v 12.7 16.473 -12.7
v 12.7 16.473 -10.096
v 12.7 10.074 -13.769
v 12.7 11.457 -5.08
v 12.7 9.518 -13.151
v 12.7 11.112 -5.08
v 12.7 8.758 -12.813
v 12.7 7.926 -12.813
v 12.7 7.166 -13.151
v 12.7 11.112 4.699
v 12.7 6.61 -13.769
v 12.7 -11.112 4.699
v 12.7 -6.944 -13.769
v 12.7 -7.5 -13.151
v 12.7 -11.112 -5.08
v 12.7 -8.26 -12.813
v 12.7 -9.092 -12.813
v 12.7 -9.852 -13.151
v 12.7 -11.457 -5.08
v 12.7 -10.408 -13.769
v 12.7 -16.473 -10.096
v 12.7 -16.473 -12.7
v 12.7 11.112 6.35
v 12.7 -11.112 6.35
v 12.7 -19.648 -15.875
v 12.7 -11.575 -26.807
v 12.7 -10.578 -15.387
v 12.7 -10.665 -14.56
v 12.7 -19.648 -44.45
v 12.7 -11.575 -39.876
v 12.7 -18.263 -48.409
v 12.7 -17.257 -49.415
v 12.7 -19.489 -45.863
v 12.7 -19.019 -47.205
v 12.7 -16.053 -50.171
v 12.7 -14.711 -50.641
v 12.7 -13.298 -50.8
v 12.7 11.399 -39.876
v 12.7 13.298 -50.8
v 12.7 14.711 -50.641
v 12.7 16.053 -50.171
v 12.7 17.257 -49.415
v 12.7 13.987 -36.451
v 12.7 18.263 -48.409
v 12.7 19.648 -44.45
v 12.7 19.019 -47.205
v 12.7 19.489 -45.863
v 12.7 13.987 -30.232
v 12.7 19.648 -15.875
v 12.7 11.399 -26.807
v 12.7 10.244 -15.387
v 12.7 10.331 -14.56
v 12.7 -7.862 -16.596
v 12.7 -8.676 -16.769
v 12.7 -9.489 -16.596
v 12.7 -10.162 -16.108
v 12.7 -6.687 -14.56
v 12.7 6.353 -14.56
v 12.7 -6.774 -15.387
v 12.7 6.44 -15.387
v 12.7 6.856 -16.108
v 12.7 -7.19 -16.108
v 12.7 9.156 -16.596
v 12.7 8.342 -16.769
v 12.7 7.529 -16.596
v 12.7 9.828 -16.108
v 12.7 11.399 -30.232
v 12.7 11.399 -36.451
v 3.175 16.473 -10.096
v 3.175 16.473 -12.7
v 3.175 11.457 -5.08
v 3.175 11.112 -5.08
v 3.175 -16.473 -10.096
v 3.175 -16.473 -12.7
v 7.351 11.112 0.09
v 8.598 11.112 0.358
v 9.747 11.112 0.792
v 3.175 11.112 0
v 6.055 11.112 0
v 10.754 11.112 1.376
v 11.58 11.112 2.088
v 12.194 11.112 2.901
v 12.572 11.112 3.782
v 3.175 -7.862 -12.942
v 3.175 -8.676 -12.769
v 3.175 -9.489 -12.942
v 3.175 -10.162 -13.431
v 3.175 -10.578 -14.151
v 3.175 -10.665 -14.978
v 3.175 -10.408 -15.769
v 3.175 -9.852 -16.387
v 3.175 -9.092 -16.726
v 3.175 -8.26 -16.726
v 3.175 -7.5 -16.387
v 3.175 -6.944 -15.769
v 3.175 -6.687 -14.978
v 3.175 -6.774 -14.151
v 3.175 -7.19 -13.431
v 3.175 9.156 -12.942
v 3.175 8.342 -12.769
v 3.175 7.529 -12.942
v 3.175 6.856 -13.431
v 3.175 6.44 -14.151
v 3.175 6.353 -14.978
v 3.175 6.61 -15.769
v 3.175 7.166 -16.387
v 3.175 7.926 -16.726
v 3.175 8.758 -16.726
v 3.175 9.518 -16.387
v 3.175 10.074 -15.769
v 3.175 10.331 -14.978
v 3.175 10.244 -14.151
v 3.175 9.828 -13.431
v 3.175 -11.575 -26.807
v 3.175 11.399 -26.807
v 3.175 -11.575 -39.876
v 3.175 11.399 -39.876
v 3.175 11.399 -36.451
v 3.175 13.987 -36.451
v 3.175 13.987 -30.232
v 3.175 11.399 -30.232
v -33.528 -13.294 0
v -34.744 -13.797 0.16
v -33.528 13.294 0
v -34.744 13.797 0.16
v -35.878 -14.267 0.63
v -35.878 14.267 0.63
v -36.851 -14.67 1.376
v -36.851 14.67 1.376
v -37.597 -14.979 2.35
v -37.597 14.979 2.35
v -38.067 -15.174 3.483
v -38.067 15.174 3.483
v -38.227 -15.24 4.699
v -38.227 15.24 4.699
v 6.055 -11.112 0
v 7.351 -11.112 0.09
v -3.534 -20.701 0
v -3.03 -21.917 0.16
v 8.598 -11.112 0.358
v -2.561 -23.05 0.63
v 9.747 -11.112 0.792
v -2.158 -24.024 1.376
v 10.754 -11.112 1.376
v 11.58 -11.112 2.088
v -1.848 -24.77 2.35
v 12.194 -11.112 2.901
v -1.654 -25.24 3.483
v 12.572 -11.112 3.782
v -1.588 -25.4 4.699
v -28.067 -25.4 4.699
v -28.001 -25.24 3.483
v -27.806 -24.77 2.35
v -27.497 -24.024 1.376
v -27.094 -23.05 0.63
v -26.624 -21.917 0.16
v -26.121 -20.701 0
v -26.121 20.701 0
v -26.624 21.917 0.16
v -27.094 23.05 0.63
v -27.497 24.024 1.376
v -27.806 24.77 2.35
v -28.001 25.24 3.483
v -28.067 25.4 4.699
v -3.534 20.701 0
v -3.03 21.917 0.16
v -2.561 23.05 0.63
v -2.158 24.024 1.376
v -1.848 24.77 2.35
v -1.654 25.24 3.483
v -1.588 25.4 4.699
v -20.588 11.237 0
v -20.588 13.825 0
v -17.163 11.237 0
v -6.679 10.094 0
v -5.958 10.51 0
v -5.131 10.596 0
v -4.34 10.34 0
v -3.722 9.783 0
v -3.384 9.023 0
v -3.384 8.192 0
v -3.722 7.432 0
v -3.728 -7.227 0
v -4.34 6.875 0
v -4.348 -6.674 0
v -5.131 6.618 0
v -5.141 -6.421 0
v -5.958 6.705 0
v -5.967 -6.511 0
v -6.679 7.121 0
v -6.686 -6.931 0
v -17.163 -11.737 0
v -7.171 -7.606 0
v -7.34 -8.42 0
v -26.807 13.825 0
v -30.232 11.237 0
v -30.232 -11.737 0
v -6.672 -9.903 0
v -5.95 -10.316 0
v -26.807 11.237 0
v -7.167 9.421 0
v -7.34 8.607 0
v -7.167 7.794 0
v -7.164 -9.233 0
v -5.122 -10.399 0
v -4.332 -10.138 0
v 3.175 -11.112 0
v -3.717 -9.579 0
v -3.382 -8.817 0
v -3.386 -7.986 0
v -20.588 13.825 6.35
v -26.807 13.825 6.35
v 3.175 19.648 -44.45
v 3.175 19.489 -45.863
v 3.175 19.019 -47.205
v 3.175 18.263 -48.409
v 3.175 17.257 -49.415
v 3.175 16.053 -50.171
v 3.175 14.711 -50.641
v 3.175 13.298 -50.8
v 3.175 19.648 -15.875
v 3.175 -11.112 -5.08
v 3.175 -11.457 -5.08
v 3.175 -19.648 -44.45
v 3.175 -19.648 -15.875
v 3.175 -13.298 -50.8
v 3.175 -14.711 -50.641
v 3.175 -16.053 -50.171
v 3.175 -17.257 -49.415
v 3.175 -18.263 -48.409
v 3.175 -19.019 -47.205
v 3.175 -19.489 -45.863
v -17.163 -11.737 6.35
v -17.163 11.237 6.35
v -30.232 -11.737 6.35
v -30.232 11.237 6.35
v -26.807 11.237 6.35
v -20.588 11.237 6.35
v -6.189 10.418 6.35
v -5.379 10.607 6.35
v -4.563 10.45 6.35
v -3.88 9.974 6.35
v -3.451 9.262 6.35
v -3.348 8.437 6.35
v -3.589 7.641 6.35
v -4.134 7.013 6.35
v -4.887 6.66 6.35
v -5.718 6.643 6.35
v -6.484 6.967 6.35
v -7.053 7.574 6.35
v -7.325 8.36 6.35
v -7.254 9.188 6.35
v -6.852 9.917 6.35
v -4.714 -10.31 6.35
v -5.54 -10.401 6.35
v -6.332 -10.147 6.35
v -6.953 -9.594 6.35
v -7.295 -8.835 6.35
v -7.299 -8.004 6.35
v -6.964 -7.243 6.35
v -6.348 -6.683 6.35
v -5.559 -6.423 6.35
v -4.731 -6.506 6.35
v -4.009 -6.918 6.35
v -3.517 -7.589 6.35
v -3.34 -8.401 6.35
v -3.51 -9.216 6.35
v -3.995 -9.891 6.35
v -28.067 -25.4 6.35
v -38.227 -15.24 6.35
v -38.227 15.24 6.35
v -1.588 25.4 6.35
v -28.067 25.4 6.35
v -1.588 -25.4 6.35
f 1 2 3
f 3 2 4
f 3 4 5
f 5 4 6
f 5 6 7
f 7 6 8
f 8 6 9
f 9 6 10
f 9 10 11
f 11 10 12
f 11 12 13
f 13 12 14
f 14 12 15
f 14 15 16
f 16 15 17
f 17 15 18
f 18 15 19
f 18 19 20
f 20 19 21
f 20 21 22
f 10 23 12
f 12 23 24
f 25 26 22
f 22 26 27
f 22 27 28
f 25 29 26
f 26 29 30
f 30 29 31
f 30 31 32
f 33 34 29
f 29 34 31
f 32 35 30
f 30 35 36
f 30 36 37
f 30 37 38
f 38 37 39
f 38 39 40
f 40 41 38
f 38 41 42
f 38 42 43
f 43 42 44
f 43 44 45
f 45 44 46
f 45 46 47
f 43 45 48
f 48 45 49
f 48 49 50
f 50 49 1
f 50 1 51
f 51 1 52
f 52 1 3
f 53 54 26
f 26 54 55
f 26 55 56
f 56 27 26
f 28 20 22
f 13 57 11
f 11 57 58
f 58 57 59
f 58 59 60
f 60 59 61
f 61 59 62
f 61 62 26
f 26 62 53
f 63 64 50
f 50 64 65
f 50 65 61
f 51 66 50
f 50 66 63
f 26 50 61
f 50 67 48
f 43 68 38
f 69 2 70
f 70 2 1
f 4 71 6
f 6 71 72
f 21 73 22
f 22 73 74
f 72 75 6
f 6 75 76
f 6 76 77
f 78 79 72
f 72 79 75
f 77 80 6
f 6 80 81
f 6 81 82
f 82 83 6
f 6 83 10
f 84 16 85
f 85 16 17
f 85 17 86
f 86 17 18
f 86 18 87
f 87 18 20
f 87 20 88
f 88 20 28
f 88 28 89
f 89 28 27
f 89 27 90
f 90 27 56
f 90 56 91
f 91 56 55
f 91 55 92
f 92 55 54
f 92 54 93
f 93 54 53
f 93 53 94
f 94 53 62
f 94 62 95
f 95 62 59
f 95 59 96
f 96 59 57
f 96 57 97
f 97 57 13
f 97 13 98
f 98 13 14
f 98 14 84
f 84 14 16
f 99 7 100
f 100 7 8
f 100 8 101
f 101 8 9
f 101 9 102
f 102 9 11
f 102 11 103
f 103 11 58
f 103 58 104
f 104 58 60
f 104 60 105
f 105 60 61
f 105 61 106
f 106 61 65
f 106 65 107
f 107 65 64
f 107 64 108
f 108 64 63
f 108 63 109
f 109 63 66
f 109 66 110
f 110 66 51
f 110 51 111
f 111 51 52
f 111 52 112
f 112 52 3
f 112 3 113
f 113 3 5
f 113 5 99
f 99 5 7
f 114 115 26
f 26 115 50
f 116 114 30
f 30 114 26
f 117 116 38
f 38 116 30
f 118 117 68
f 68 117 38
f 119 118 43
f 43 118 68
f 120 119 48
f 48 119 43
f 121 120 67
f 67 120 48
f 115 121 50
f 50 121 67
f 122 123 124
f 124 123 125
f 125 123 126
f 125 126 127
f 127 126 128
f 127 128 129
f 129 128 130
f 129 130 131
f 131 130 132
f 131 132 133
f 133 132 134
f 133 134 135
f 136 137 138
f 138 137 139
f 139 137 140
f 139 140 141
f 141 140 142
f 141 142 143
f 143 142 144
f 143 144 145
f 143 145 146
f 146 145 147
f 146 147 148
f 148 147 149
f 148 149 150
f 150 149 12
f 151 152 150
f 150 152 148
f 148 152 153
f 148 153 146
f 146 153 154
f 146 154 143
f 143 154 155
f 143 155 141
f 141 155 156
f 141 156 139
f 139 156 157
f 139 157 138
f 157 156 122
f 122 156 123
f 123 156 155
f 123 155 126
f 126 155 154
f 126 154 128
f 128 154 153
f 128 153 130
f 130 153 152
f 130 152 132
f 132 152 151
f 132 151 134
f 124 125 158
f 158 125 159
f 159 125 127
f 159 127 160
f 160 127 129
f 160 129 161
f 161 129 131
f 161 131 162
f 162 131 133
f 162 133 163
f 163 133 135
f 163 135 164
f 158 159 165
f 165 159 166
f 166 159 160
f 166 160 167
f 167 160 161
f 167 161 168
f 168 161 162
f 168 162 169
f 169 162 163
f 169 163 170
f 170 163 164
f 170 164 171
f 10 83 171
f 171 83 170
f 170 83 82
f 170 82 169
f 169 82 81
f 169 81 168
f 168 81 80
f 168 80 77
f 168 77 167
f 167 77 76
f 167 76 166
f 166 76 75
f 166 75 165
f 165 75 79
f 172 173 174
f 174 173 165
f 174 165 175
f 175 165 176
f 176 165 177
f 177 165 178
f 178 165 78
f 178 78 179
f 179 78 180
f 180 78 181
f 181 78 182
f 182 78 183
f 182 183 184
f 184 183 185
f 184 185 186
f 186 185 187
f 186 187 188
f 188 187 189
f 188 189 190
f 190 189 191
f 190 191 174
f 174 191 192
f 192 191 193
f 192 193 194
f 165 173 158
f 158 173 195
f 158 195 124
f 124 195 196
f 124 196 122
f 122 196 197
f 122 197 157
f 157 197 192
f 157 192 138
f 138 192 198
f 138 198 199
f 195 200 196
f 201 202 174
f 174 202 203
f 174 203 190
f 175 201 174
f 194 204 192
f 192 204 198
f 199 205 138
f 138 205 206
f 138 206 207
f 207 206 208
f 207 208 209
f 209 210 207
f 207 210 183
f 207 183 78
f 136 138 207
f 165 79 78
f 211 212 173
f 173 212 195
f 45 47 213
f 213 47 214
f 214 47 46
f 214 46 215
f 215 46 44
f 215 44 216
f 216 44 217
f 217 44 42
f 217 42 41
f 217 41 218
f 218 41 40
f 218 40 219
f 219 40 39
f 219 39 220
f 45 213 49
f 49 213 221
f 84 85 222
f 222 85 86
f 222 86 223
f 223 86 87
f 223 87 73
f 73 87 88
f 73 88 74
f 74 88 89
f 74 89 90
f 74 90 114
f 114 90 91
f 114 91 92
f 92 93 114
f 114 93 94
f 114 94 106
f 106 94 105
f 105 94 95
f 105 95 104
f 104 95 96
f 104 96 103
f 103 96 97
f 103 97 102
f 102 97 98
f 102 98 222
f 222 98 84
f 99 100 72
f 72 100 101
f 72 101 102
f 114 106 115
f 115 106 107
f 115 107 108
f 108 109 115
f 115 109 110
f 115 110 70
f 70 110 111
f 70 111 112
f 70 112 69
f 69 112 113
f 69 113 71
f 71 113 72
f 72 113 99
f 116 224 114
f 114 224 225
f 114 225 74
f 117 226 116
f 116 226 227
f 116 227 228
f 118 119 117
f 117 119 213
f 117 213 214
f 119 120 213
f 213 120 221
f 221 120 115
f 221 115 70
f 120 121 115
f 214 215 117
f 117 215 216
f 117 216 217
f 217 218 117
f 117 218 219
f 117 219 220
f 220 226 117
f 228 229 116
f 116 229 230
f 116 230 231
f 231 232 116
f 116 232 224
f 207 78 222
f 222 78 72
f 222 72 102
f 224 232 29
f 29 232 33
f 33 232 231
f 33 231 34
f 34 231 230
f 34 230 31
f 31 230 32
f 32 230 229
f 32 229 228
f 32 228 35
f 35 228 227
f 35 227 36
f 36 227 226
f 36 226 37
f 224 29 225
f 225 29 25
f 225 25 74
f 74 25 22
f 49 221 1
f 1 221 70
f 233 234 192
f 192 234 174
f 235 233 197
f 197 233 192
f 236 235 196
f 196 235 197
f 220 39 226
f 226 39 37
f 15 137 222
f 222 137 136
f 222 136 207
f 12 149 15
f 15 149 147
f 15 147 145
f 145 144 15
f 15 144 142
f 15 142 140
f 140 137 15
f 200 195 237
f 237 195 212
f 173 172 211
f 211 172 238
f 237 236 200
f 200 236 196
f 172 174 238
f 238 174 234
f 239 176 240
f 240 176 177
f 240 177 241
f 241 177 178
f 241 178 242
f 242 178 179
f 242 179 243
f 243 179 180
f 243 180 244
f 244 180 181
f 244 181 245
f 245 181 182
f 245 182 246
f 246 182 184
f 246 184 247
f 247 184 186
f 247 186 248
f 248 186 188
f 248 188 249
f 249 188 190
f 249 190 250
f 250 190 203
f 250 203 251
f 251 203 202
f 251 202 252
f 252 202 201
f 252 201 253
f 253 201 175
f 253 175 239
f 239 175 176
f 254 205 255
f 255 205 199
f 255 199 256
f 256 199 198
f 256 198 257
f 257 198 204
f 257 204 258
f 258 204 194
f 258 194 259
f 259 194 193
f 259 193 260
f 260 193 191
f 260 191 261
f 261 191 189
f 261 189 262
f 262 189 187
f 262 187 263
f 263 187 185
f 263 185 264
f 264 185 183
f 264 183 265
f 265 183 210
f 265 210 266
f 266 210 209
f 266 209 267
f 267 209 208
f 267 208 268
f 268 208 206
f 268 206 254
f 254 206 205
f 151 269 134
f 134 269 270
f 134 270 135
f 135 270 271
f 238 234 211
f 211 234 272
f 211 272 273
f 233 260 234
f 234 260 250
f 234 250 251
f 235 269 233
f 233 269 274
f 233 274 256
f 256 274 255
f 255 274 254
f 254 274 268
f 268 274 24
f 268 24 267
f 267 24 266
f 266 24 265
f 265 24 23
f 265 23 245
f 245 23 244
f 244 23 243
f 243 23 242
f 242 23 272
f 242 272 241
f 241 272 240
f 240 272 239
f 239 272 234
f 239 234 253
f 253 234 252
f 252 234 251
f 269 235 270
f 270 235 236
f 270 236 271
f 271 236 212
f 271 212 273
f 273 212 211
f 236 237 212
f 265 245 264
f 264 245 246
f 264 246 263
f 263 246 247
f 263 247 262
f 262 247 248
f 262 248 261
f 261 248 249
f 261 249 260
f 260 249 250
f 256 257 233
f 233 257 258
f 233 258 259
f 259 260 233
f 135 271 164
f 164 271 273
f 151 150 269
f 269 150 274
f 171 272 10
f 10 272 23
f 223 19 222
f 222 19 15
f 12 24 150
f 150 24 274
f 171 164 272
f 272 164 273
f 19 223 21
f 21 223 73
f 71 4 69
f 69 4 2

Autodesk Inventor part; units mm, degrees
ref_plane "YZ Plane" through (0, 0, 0) normal (1, 0, 0) x (0, 1, 0)
ref_plane "XZ Plane" through (0, 0, 0) normal (0, 1, 0) x (-1, 0, 0)
ref_plane "XY Plane" through (0, 0, 0) normal (0, 0, 1) x (1, 0, 0)
sketch "Sketch1" plane through (0, 0, 0) normal (0, 0, 1) x (1, 0, 0)
  line L0 (-38.1, -25.4) -> (38.1, -25.4)
  line L1 (38.1, -25.4) -> (38.1, 25.4)
  line L2 (38.1, 25.4) -> (-38.1, 25.4)
  line L3 (-38.1, 25.4) -> (-38.1, -25.4)
  line L4 (-38.1, -25.4) -> (38.1, 25.4) construction
  line L5 (38.1, -25.4) -> (-38.1, 25.4) construction
  point P0 (0, 0)
  dimension "d0" = 76.2
  dimension "d1" = 50.8
extrude "Extrusion1" add sketch "Sketch1" along normal blind 6.35
sketch "Sketch3" plane through (38.1, -25.4, 0) normal (1, 0, 0) x (0, 0, -1)
  line L0 (0, 0) -> (0, 50.8) projected
  line L1 (0, 50.8) -> (-6.35, 50.8) projected
  line L2 (-6.35, 0) -> (-6.35, 50.8) projected
  line L3 (0, 0) -> (-6.35, 0) projected
  point P0 (0, 25.4)
extrude "Extrusion3" cut sketch "Sketch3" against normal blind 25.4
sketch "Sketch4" plane through (-38.1, -25.4, 0) normal (-1, 0, 0) x (0, 0, 1)
  line L0 (4.925, 17.15) -> (1.425, 17.15)
  line L1 (1.425, 17.15) -> (1.425, 33.65)
  line L2 (1.425, 33.65) -> (4.925, 33.65)
  line L3 (4.925, 33.65) -> (4.925, 17.15)
  line L4 (4.925, 17.15) -> (1.425, 33.65) construction
  line L5 (1.425, 17.15) -> (4.925, 33.65) construction
  point P0 (0, 25.4)
  point P1 (3.175, 25.4)
  dimension "d9" = 3.5
  dimension "d10" = 16.5
extrude "Extrusion4" add sketch "Sketch4" along normal blind 3.302
sketch "Sketch5" plane through (-38.1, -8.25, 4.925) normal (0, 0, 1) x (1, 0, 0)
  line L0 (-3.302, 0) -> (-3.302, 16.5) projected
  line L1 (0, 16.5) -> (0, 0) projected
  line L2 (0, 16.5) -> (-3.302, 16.5) projected
  line L3 (-3.302, 0) -> (-3.302, 16.5) projected
  line L4 (0, 0) -> (-3.302, 0) projected
  line L5 (-3.302, 16.5) -> (-3.175, 16.5)
  line L6 (0, 16.5) -> (-3.302, 16.5) projected
  line L7 (-3.175, 16.5) -> (-3.175, 16.5685)
  line L8 (-3.302, 16.5) -> (-3.302, 0) projected
  line L9 (-3.175, 16.5685) -> (-3.302, 16.5)
  point P0 (38.1, 8.25)
  point P1 (-3.175, 16.5)
  dimension "d13" = 0.127
sketch3d "3D Sketch1"
  line L0 (-41.402, 8.25, 4.925) -> (-41.402, 8.25, 1.425)
  line L1 (-41.402, 8.25, 1.425) -> (-41.402, -8.25, 1.425)
  line L2 (-41.402, -8.25, 1.425) -> (-41.402, -8.25, 4.925)
  line L3 (-41.402, -8.25, 4.925) -> (-41.402, 8.25, 4.925)
sweep "Sweep1" add profiles "Sketch5" path "3D Sketch1" contours L9 L7 L2
chamfer "Chamfer1" distance 14.2875 angle 45 4 edges at (-38.1, -25.4, 3.175) (-38.1, 25.4, 3.175) (12.7, -25.4, 3.175) (12.7, 25.4, 3.175)
sketch "Sketch6" plane through (-41.402, -25.4, 0) normal (-1, 0, 0) x (0, 0, 1)
  line L0 (-26.5368, -66.9991) -> (26.5368, -66.9991)
  line L1 (26.5368, -66.9991) -> (26.5368, 66.9991)
  line L2 (26.5368, 66.9991) -> (-26.5368, 66.9991)
  line L3 (-26.5368, 66.9991) -> (-26.5368, -66.9991)
  line L4 (0, 0) -> (6.35, 0) projected
  line L5 (-26.5368, -66.9991) -> (26.5368, 66.9991) construction
  line L6 (26.5368, -66.9991) -> (-26.5368, 66.9991) construction
  point P0 (0, 25.4)
extrude "Extrusion5" cut sketch "Sketch6" against normal blind 28.575
sketch "Sketch7" plane through (0, 0, 0) normal (0, 0, -1) x (-1, 0, 0)
  line L0 (-8.025, 3.175) -> (-8.025, -3.175)
  line L1 (-8.025, -3.175) -> (8.025, -3.175)
  line L2 (8.025, -3.175) -> (8.025, 3.175)
  line L3 (8.025, 3.175) -> (-8.025, 3.175)
  line L4 (-8.025, 4.675) -> (8.025, -1.675) construction
  line L5 (-8.025, -1.675) -> (8.025, 4.675) construction
  line L6 (0, 3.175) -> (0, -3.175)
  point P0 (0, 0)
  point P1 (0, 0)
  dimension "d21" = 6.35
  dimension "d22" = 16.05
extrude "Extrusion6" add sketch "Sketch7" along normal blind 19.2024
sketch "Sketch9" plane through (0, 0, 6.35) normal (0, 0, 1) x (1, 0, 0)
  line L0 (6.0307, -10.9832) -> (5.9693, 11.0167) projected
  line L1 (-6.0307, 10.9832) -> (6.0307, 10.9832)
  line L2 (6.0307, 10.9832) -> (6.0307, -10.9832)
  line L3 (6.0307, -10.9832) -> (-6.0307, -10.9832)
  line L4 (-6.0307, -10.9832) -> (-6.0307, 10.9832)
  point P0 (0, 0)
sketch "Sketch10" plane through (-12.827, -25.4, 0) normal (-1, 0, 0) x (0, 0, 1)
  line L0 (0, 0) -> (0, 50.8) projected
  line L1 (6.35, 0) -> (0, 0) projected
  line L2 (6.35, 50.8) -> (6.35, 0) projected
  line L3 (0, 50.8) -> (6.35, 50.8) projected
  point P0 (0, 25.4)
extrude "Extrusion7" add sketch "Sketch10" along normal blind 25.4
chamfer "Chamfer2" distance 10.16 angle 45 1 edges at (-38.227, 25.4, 3.175)
chamfer "Chamfer3" distance 10.16 angle 45 1 edges at (-38.227, -25.4, 3.175)
sketch "Sketch11" plane through (0, 0, 6.35) normal (0, 0, 1) x (1, 0, 0)
  line L0 (-29.728, 10.9832) -> (-17.6666, 10.9832)
  line L1 (-17.6666, -10.9832) -> (-29.728, -10.9832)
  line L2 (-29.728, -10.9832) -> (-29.728, 10.9832)
  line L3 (-17.6666, -10.9832) -> (-17.6666, 10.9832)
  line L4 (-30.998, 12.2532) -> (-16.3966, 12.2532)
  line L5 (-16.3966, 12.2532) -> (-16.3966, -12.2532)
  line L6 (-16.3966, -12.2532) -> (-30.998, -12.2532)
  line L7 (-30.998, -12.2532) -> (-30.998, 12.2532)
  line L8 (-17.6666, 10.9832) -> (-18.9366, 10.9832)
  line L9 (-29.728, 10.9832) -> (-28.458, 10.9832)
  line L10 (-18.9366, 10.9832) -> (-28.458, 10.9832)
  line L11 (-28.458, 10.9832) -> (-28.458, 15.1856)
  line L12 (-28.458, 15.1856) -> (-18.9366, 15.1856)
  line L13 (-18.9366, 15.1856) -> (-18.9366, 10.9832)
  point P0 (0, 0)
  dimension "d54" = 1.27
  dimension "d55" = 1.27
  dimension "d56" = 1.27
extrude "Extrusion8" cut sketch "Sketch11" against normal up to surface (6.35 mm away) contours L0 L3 L1 L2
sketch "Sketch12" plane through (0, 0, 6.35) normal (0, 0, 1) x (1, 0, 0)
  arc A0 (-5.2182, -6.4143) -> (-5.5402, -10.4006) centre (-5.418, -8.4043) ccw projected
  arc A1 (-5.5402, -10.4006) -> (-5.2182, -6.4143) centre (-5.3404, -8.4106) ccw projected
  arc A2 (-5.3792, 10.6071) -> (-5.3792, 6.6078) centre (-5.418, 8.6074) ccw projected
  arc A3 (-5.3792, 6.6078) -> (-5.3792, 10.6071) centre (-5.3404, 8.6074) ccw projected
  line L0 (-14.078, 16.1258) -> (3.242, 16.1258) projected
  line L1 (-14.078, 16.1258) -> (-14.078, -15.929) projected
  line L2 (-14.078, -15.929) -> (3.242, -15.929) projected
  line L3 (3.242, 16.1258) -> (3.242, -15.929) projected
  circle A4 centre (-5.3404, -8.4106) radius 2
  circle A5 centre (-5.3404, 8.6074) radius 2
  point P0 (0, 0)
  point P1 (-5.3792, 6.6078)
  point P2 (-5.2182, -6.4143)
  point P3 (-5.5402, -10.4006)
  dimension "d38" = 4
  dimension "d39" = 4
extrude "Extrusion9" cut sketch "Sketch12" against normal up to surface (6.35 mm away) contours A1 A4 | A3 A5
sketch "Sketch13" plane through (-8.025, 3.175, 0) normal (0, 1, 0) x (1, 0, 0)
  line L0 (16.05, 19.2024) -> (0, 19.2024) projected
  circle A0 centre (8.025, 4.3815) radius 2.25
  circle A1 centre (8.025, 13.1445) radius 2.25
  line L1 (16.05, 0) -> (0, 0) projected
  line L2 (16.05, 0) -> (16.05, 19.2024) projected
  line L3 (0, 19.2024) -> (16.05, 19.2024) projected
  line L4 (0, 0) -> (0, 19.2024) projected
  line L5 (8.025, 0) -> (12.4065, 0)
  line L6 (6.4375, 0) -> (20.725, 0) projected
  line L7 (8.025, 0) -> (8.025, 4.3815)
  line L8 (8.025, 0) -> (12.4065, 0) construction
  line L9 (8.025, 0) -> (21.1695, 0)
  line L10 (8.025, 0) -> (8.025, 13.1445)
  line L11 (16.05, 0) -> (0, 0) projected
  line L12 (8.025, 0) -> (21.1695, 0) construction
  dimension "d44" = 4.5
  dimension "d45" = 4.5
  dimension "d48" = 4.3815
  dimension "d49" = 4.3815
  dimension "d50" = 90
  dimension "d51" = 13.1445
  dimension "d52" = 13.1445
  dimension "d53" = 90
extrude "Extrusion10" cut sketch "Sketch13" against normal up to surface (6.35 mm away) contours A1 | A0 L10 L7 | L7 L10 A0
sketch "Sketch14" plane through (0, 0, -19.2024) normal (0, 0, -1) x (-1, 0, 0)
  line L0 (8.025, 3.175) -> (8.025, -3.175) projected
  line L1 (-8.025, -3.175) -> (-8.025, 3.175) projected
  line L2 (8.025, 3.175) -> (-8.025, 3.175)
  line L3 (-8.025, 3.175) -> (-8.025, -3.175)
  line L4 (-8.025, -3.175) -> (8.025, -3.175)
  line L5 (8.025, -3.175) -> (8.025, 3.175)
  point P0 (0, 0)
sketch "Sketch16" plane through (0, 0, 6.35) normal (0, 0, 1) x (1, 0, 0)
  line L0 (-29.728, -10.9832) -> (-29.728, 10.9832) projected
  line L1 (-17.6666, -10.9832) -> (-29.728, -10.9832) projected
  line L2 (-17.6666, 10.9832) -> (-17.6666, -10.9832) projected
  line L3 (-29.728, 10.9832) -> (-17.6666, 10.9832) projected
  line L4 (-29.982, -11.2372) -> (-29.982, 11.2372)
  line L5 (-29.982, 11.2372) -> (-17.4126, 11.2372)
  line L6 (-17.4126, 11.2372) -> (-17.4126, -11.2372)
  line L7 (-17.4126, -11.2372) -> (-29.982, -11.2372)
  point P0 (0, 0)
  dimension "d62" = 0.254
extrude "Extrusion12" cut sketch "Sketch16" against normal up to surface (6.35 mm away)
sketch "Sketch17" plane through (0, 0, 6.35) normal (0, 0, 1) x (1, 0, 0)
  line L0 (-17.4126, 11.2372) -> (-29.982, 11.2372) projected
  line L1 (-29.982, 11.2372) -> (-26.807, 11.2372)
  line L2 (-17.4126, 11.2372) -> (-20.5876, 11.2372)
  line L3 (-26.807, 11.2372) -> (-20.5876, 11.2372)
  line L4 (-20.5876, 11.2372) -> (-20.5876, 12.8247)
  line L5 (-20.5876, 12.8247) -> (-26.807, 12.8247)
  line L6 (-26.807, 12.8247) -> (-26.807, 11.2372)
  point P0 (0, 0)
  dimension "d65" = 3.175
  dimension "d66" = 3.175
  dimension "d67" = 1.5875
extrude "Extrusion13" cut sketch "Sketch17" against normal up to surface (6.35 mm away)
sketch "Sketch18" plane through (0, 0, -19.2024) normal (0, 0, -1) x (-1, 0, 0)
  line L0 (8.025, -3.175) -> (8.025, 3.175) projected
  line L1 (8.025, 3.175) -> (-8.025, 3.175) projected
  line L2 (-8.025, 3.175) -> (-8.025, -3.175) projected
  line L3 (-8.025, -3.175) -> (8.025, -3.175) projected
  line L4 (8.025, -3.175) -> (8.025, 3.175) projected
  line L5 (8.025, 3.175) -> (-8.025, 3.175) projected
  line L6 (-8.025, 3.175) -> (-8.025, -3.175) projected
  line L7 (-8.025, -3.175) -> (8.025, -3.175) projected
  point P0 (0, 0)
extrude "Extrusion14" cut sketch "Sketch18" against normal up to surface (19.2024 mm away)
sketch "Sketch19" plane through (0, 0, 0) normal (0, 0, -1) x (-1, 0, 0)
  line L0 (38.227, -15.24) -> (28.067, -25.4) projected
  line L1 (38.227, 15.24) -> (38.227, -15.24) projected
  line L2 (28.067, 25.4) -> (38.227, 15.24) projected
  line L3 (1.5875, 25.4) -> (28.067, 25.4) projected
  line L4 (-12.7, 11.1125) -> (1.5875, 25.4) projected
  line L5 (-12.7, 11.1125) -> (-12.7, -11.1125) projected
  line L6 (1.5875, -25.4) -> (-12.7, -11.1125) projected
  line L7 (28.067, -25.4) -> (1.5875, -25.4) projected
  circle A0 centre (5.3404, -8.4106) radius 2 projected
  circle A1 centre (5.3404, 8.6074) radius 2 projected
  line L8 (20.5876, 11.2372) -> (20.5876, 12.8247) projected
  line L9 (20.5876, 12.8247) -> (26.807, 12.8247) projected
  line L10 (26.807, 12.8247) -> (26.807, 11.2372) projected
  line L11 (26.807, 11.2372) -> (29.982, 11.2372) projected
  line L12 (29.982, 11.2372) -> (29.982, -11.2372) projected
  line L13 (29.982, -11.2372) -> (17.4126, -11.2372) projected
  line L14 (17.4126, -11.2372) -> (17.4126, 11.2372) projected
  line L15 (17.4126, 11.2372) -> (20.5876, 11.2372) projected
  line L16 (-12.7, -11.1125) -> (-3.175, -11.1125)
  line L17 (-3.175, -11.1125) -> (-3.175, 11.1125)
  line L18 (-3.175, 11.1125) -> (-12.7, 11.1125)
  line L19 (-12.7, 11.1125) -> (-12.7, -11.1125)
  point P0 (0, 0)
  dimension "d72" = 9.525
extrude "Extrusion15" add sketch "Sketch19" along normal blind 12.7 contours L5 L18 L17 L16
sketch "Sketch20" plane through (0, 0, -12.7) normal (0, 0, -1) x (-1, 0, 0)
  line L0 (-12.7, -11.1125) -> (-3.175, -11.1125) projected
  line L1 (-3.175, -11.1125) -> (-3.175, 11.1125) projected
  line L2 (-3.175, 11.1125) -> (-12.7, 11.1125) projected
  line L3 (-12.7, 11.1125) -> (-12.7, -11.1125) projected
  line L4 (-3.175, -19.648) -> (-12.7, -19.648)
  line L5 (-12.7, -19.648) -> (-12.7, 19.648)
  line L6 (-12.7, 19.648) -> (-3.175, 19.648)
  line L7 (-3.175, 19.648) -> (-3.175, -19.648)
  line L8 (-3.175, -19.648) -> (-12.7, 19.648) construction
  line L9 (-12.7, -19.648) -> (-3.175, 19.648) construction
  point P0 (0, 0)
  point P1 (-7.9375, 0)
extrude "Extrusion16" add sketch "Sketch20" along normal blind 38.1
sketch "Sketch21" plane through (0, 0, 0) normal (0, 0, -1) x (-1, 0, 0)
  line L0 (29.982, -11.2372) -> (17.4126, -11.2372) projected
  line L1 (29.982, -11.2372) -> (17.4126, -11.2372)
  line L2 (17.4126, -11.2372) -> (17.4126, -11.7372)
  line L3 (17.4126, -11.7372) -> (29.982, -11.7372)
  line L4 (29.982, -11.7372) -> (29.982, -11.2372)
  line L5 (29.982, -11.7372) -> (30.232, -11.7372)
  line L6 (30.232, -11.7372) -> (30.232, 11.2372)
  line L7 (30.232, 11.2372) -> (29.982, 11.2372)
  line L8 (29.982, 11.2372) -> (29.982, -11.7372)
  line L9 (17.4126, -11.7372) -> (17.1626, -11.7372)
  line L10 (17.1626, -11.7372) -> (17.1626, 11.2372)
  line L11 (17.1626, 11.2372) -> (17.4126, 11.2372)
  line L12 (17.4126, 11.2372) -> (17.4126, -11.7372)
  point P0 (0, 0)
  dimension "d77" = 0.5
  dimension "d78" = 0.25
  dimension "d79" = 0.25
extrude "Extrusion17" cut sketch "Sketch21" against normal up to surface (6.35 mm away)
chamfer "Chamfer4" distance 3.175 angle 45 2 edges at (7.9375, 19.648, -12.7) (7.9375, -19.648, -12.7)
fillet "Fillet2" radius 6.35 2 edges at (7.9375, -19.648, -50.8) (7.9375, 19.648, -50.8)
sketch "Sketch22" plane through (0, 0, 0) normal (0, 0, -1) x (-1, 0, 0)
  line L0 (-12.7, 11.1125) -> (-3.175, 11.1125) projected
  line L1 (-3.175, 11.1125) -> (-3.175, -11.1125) projected
  line L2 (-3.175, -11.1125) -> (-12.7, -11.1125) projected
  line L3 (1.5875, -25.4) -> (-12.7, -11.1125) projected
  line L4 (28.067, -25.4) -> (1.5875, -25.4) projected
  line L5 (38.227, -15.24) -> (28.067, -25.4) projected
  line L6 (38.227, 15.24) -> (38.227, -15.24) projected
  line L7 (28.067, 25.4) -> (38.227, 15.24) projected
  line L8 (1.5875, 25.4) -> (28.067, 25.4) projected
  line L9 (-12.7, 11.1125) -> (1.5875, 25.4) projected
  circle A0 centre (5.3404, -8.4106) radius 2 projected
  circle A1 centre (5.3404, 8.6074) radius 2 projected
  line L10 (26.807, 11.2372) -> (30.232, 11.2372) projected
  line L11 (30.232, 11.2372) -> (30.232, -11.7372) projected
  line L12 (30.232, -11.7372) -> (17.1626, -11.7372) projected
  line L13 (17.1626, -11.7372) -> (17.1626, 11.2372) projected
  line L14 (17.1626, 11.2372) -> (20.5876, 11.2372) projected
  line L15 (20.5876, 11.2372) -> (20.5876, 12.8247) projected
  line L16 (20.5876, 12.8247) -> (26.807, 12.8247) projected
  line L17 (26.807, 12.8247) -> (26.807, 11.2372) projected
  line L18 (26.807, 11.2372) -> (30.232, 11.2372)
  line L19 (30.232, 11.2372) -> (26.807, 11.2372) projected
  line L20 (30.232, -11.7372) -> (30.232, 11.2372) projected
  line L21 (30.232, 11.2372) -> (30.232, -11.7372)
  line L22 (30.232, -11.7372) -> (17.1626, -11.7372) projected
  line L23 (30.232, -11.7372) -> (17.1626, -11.7372)
  line L24 (17.1626, -11.7372) -> (17.1626, 11.2372)
  line L25 (20.5876, 11.2372) -> (17.1626, 11.2372)
  line L26 (20.5876, 11.2372) -> (20.5876, 12.8247) projected
  line L27 (20.5876, 11.2372) -> (20.5876, 12.8247)
  line L28 (20.5876, 12.8247) -> (26.807, 12.8247)
  line L29 (26.807, 11.2372) -> (26.807, 12.8247) projected
  line L30 (26.807, 11.2372) -> (26.807, 12.8247)
  point P0 (0, 0)
sketch "Sketch23" plane through (12.7, -25.4, 0) normal (1, 0, 0) x (0, 0, -1)
  line L0 (36.6513, 37.1926) -> (40.3263, 37.1926)
  line L1 (40.3263, 37.1926) -> (40.3263, 13.7182)
  line L2 (40.3263, 13.7182) -> (26.7569, 13.7182)
  line L3 (26.7569, 13.7182) -> (26.7569, 37.1926)
  line L4 (30.4319, 37.1926) -> (26.7569, 37.1926)
  line L5 (30.4319, 37.1926) -> (30.4319, 38.7801)
  line L6 (30.4319, 38.7801) -> (36.6513, 38.7801)
  line L7 (36.6513, 37.1926) -> (36.6513, 38.7801)
  point P0 (0, 25.4)
sketch "Sketch24" plane through (12.7, -25.4, 0) normal (1, 0, 0) x (0, 0, -1)
  arc A0 (50.8, 38.698) -> (44.45, 45.048) centre (44.45, 38.698) ccw projected
  line L0 (15.875, 45.048) -> (44.45, 45.048) projected
  line L1 (12.7, 41.873) -> (15.875, 45.048) projected
  line L2 (12.7, 41.873) -> (12.7, 36.5125) projected
  line L3 (0, 36.5125) -> (12.7, 36.5125) projected
  line L4 (-6.35, 36.5125) -> (0, 36.5125) projected
  line L5 (-6.35, 14.2875) -> (-6.35, 36.5125) projected
  line L6 (0, 14.2875) -> (-6.35, 14.2875) projected
  line L7 (0, 14.2875) -> (12.7, 14.2875) projected
  line L8 (12.7, 14.2875) -> (12.7, 8.927) projected
  line L9 (15.875, 5.752) -> (12.7, 8.927) projected
  line L10 (15.875, 5.752) -> (44.45, 5.752) projected
  arc A1 (44.45, 5.752) -> (50.8, 12.102) centre (44.45, 12.102) ccw projected
  line L11 (50.8, 38.698) -> (50.8, 12.102) projected
  line L12 (63.6753, 38.7801) -> (57.4559, 38.7801)
  line L13 (57.4559, 38.7801) -> (57.4559, 39.7801)
  line L14 (57.4559, 39.7801) -> (63.6753, 39.7801)
  line L15 (63.6753, 39.7801) -> (63.6753, 38.7801)
  point P0 (0, 25.4)
  dimension "d88" = 1
extrude "Extrusion19" cut sketch "Sketch24" against normal up to surface (9.525 mm away) contours L12 L13 L14 L15
sketch "Sketch25" plane through (0, 0, 0) normal (0, 0, -1) x (-1, 0, 0)
  line L0 (-12.7, 11.1125) -> (-3.175, 11.1125) projected
  line L1 (-3.175, 11.1125) -> (-3.175, -11.1125) projected
  line L2 (-3.175, -11.1125) -> (-12.7, -11.1125) projected
  line L3 (1.5875, -25.4) -> (-12.7, -11.1125) projected
  line L4 (28.067, -25.4) -> (1.5875, -25.4) projected
  line L5 (38.227, -15.24) -> (28.067, -25.4) projected
  line L6 (38.227, 15.24) -> (38.227, -15.24) projected
  line L7 (28.067, 25.4) -> (38.227, 15.24) projected
  line L8 (1.5875, 25.4) -> (28.067, 25.4) projected
  line L9 (-12.7, 11.1125) -> (1.5875, 25.4) projected
  circle A0 centre (5.3404, -8.4106) radius 2 projected
  circle A1 centre (5.3404, 8.6074) radius 2 projected
  line L10 (26.807, 11.2372) -> (30.232, 11.2372) projected
  line L11 (30.232, 11.2372) -> (30.232, -11.7372) projected
  line L12 (30.232, -11.7372) -> (17.1626, -11.7372) projected
  line L13 (17.1626, -11.7372) -> (17.1626, 11.2372) projected
  line L14 (17.1626, 11.2372) -> (20.5876, 11.2372) projected
  line L15 (20.5876, 11.2372) -> (20.5876, 12.8247) projected
  line L16 (20.5876, 12.8247) -> (26.807, 12.8247) projected
  line L17 (26.807, 12.8247) -> (26.807, 11.2372) projected
  line L18 (20.5876, 12.8247) -> (26.807, 12.8247)
  line L19 (26.807, 12.8247) -> (26.807, 13.8247)
  line L20 (26.807, 13.8247) -> (20.5876, 13.8247)
  line L21 (20.5876, 13.8247) -> (20.5876, 12.8247)
  point P0 (0, 0)
  dimension "d91" = 1
extrude "Extrusion20" cut sketch "Sketch25" against normal up to surface (6.35 mm away) contours L16 L21 L20 L19
fillet "Fillet4" radius 4.699 7 edges at (-14.8273, -25.4, 0) (-33.147, -20.32, 0) (-38.227, 0, 0) (-33.147, 20.32, 0) (-14.8272, 25.4, 0) (5.5563, 18.2563, 0) (5.5563, -18.2563, 0)
sketch "Sketch26" plane through (0, 0, 0) normal (0, 0, -1) x (-1, 0, 0)
  line L0 (20.5876, 11.2372) -> (20.5876, 13.8247) projected
  line L1 (20.5876, 13.8247) -> (26.807, 13.8247) projected
  line L2 (26.807, 13.8247) -> (26.807, 11.2372) projected
  line L3 (26.807, 11.2372) -> (30.232, 11.2372) projected
  line L4 (30.232, 11.2372) -> (30.232, -11.7372) projected
  line L5 (30.232, -11.7372) -> (17.1626, -11.7372) projected
  line L6 (17.1626, -11.7372) -> (17.1626, 11.2372) projected
  line L7 (17.1626, 11.2372) -> (20.5876, 11.2372) projected
  circle A0 centre (5.3404, 8.6074) radius 2 projected
  circle A1 centre (5.3404, -8.4106) radius 2 projected
  line L8 (3.5339, -20.701) -> (-6.0546, -11.1125) projected
  line L9 (26.1206, -20.701) -> (3.5339, -20.701) projected
  line L10 (33.528, -13.2936) -> (26.1206, -20.701) projected
  line L11 (33.528, 13.2936) -> (33.528, -13.2936) projected
  line L12 (26.1206, 20.701) -> (33.528, 13.2936) projected
  line L13 (3.5339, 20.701) -> (26.1206, 20.701) projected
  line L14 (-6.0546, 11.1125) -> (3.5339, 20.701) projected
  line L15 (-3.175, 11.1125) -> (-3.175, -11.1125) projected
  line L16 (26.807, 13.8247) -> (20.5876, 13.8247) projected
  line L17 (20.5876, 13.8247) -> (26.807, 13.8247)
  line L18 (26.807, 13.8247) -> (26.807, 11.2372)
  line L19 (26.807, 11.2372) -> (30.232, 11.2372)
  line L20 (30.232, 11.2372) -> (30.232, -11.7372) projected
  line L21 (30.232, 11.2372) -> (30.232, -11.7372)
  line L22 (17.1626, -11.7372) -> (30.232, -11.7372) projected
  line L23 (30.232, -11.7372) -> (17.1626, -11.7372)
  line L24 (17.1626, -11.7372) -> (17.1626, 11.2372)
  line L25 (20.5876, 11.2372) -> (17.1626, 11.2372) projected
  line L26 (17.1626, 11.2372) -> (20.5876, 11.2372)
  line L27 (20.5876, 11.2372) -> (20.5876, 13.8247)
  line L28 (-6.0546, 11.1125) -> (-3.175, 11.1125) projected
  line L29 (-3.175, -11.1125) -> (-6.0546, -11.1125) projected
  point P0 (0, 0)
sketch "Sketch27" plane through (12.7, -25.4, 0) normal (1, 0, 0) x (0, 0, -1)
  line L0 (30.232, 39.3866) -> (36.4514, 39.3866)
  line L1 (36.4514, 39.3866) -> (36.4514, 36.7991)
  line L2 (36.4514, 36.7991) -> (39.8764, 36.7991)
  line L3 (39.8764, 36.7991) -> (39.8764, 13.8247)
  line L4 (39.8764, 13.8247) -> (26.807, 13.8247)
  line L5 (26.807, 13.8247) -> (26.807, 36.7991)
  line L6 (26.807, 36.7991) -> (30.232, 36.7991)
  line L7 (30.232, 36.7991) -> (30.232, 39.3866)
  point P0 (0, 25.4)
extrude "Extrusion21" cut sketch "Sketch27" against normal up to surface (9.525 mm away)
sketch "Sketch29" plane through (12.7, -25.4, 0) normal (1, 0, 0) x (0, 0, -1)
  circle A0 centre (14.7694, 33.7421) radius 2
  circle A1 centre (14.7694, 16.7241) radius 2
  point P0 (0, 25.4)
extrude "Extrusion23" cut sketch "Sketch29" against normal up to surface (9.525 mm away)
sketch "Sketch30" plane through (0, 0, -12.7) normal (0, 0, 1) x (1, 0, 0)
  line L0 (3.175, 16.473) -> (12.7, 16.473) projected
  line L1 (3.175, 11.1125) -> (3.175, 16.473) projected
  line L2 (3.175, 11.1125) -> (12.7, 11.1125) projected
  line L3 (12.7, 16.473) -> (12.7, 11.1125) projected
  line L4 (12.7, -16.473) -> (3.175, -16.473) projected
  line L5 (12.7, -11.1125) -> (12.7, -16.473) projected
  line L6 (12.7, -11.1125) -> (3.175, -11.1125) projected
  line L7 (3.175, -16.473) -> (3.175, -11.1125) projected
  point P0 (0, 0)
extrude "Extrusion24" add sketch "Sketch30" along normal blind 7.62
chamfer "Chamfer5" distance 5.0165 angle 45 1 edges at (7.9375, -16.473, -5.08)
chamfer "Chamfer6" distance 5.0165 angle 45 1 edges at (7.9375, 16.473, -5.08)
properties part number "Servo Holder Module"
